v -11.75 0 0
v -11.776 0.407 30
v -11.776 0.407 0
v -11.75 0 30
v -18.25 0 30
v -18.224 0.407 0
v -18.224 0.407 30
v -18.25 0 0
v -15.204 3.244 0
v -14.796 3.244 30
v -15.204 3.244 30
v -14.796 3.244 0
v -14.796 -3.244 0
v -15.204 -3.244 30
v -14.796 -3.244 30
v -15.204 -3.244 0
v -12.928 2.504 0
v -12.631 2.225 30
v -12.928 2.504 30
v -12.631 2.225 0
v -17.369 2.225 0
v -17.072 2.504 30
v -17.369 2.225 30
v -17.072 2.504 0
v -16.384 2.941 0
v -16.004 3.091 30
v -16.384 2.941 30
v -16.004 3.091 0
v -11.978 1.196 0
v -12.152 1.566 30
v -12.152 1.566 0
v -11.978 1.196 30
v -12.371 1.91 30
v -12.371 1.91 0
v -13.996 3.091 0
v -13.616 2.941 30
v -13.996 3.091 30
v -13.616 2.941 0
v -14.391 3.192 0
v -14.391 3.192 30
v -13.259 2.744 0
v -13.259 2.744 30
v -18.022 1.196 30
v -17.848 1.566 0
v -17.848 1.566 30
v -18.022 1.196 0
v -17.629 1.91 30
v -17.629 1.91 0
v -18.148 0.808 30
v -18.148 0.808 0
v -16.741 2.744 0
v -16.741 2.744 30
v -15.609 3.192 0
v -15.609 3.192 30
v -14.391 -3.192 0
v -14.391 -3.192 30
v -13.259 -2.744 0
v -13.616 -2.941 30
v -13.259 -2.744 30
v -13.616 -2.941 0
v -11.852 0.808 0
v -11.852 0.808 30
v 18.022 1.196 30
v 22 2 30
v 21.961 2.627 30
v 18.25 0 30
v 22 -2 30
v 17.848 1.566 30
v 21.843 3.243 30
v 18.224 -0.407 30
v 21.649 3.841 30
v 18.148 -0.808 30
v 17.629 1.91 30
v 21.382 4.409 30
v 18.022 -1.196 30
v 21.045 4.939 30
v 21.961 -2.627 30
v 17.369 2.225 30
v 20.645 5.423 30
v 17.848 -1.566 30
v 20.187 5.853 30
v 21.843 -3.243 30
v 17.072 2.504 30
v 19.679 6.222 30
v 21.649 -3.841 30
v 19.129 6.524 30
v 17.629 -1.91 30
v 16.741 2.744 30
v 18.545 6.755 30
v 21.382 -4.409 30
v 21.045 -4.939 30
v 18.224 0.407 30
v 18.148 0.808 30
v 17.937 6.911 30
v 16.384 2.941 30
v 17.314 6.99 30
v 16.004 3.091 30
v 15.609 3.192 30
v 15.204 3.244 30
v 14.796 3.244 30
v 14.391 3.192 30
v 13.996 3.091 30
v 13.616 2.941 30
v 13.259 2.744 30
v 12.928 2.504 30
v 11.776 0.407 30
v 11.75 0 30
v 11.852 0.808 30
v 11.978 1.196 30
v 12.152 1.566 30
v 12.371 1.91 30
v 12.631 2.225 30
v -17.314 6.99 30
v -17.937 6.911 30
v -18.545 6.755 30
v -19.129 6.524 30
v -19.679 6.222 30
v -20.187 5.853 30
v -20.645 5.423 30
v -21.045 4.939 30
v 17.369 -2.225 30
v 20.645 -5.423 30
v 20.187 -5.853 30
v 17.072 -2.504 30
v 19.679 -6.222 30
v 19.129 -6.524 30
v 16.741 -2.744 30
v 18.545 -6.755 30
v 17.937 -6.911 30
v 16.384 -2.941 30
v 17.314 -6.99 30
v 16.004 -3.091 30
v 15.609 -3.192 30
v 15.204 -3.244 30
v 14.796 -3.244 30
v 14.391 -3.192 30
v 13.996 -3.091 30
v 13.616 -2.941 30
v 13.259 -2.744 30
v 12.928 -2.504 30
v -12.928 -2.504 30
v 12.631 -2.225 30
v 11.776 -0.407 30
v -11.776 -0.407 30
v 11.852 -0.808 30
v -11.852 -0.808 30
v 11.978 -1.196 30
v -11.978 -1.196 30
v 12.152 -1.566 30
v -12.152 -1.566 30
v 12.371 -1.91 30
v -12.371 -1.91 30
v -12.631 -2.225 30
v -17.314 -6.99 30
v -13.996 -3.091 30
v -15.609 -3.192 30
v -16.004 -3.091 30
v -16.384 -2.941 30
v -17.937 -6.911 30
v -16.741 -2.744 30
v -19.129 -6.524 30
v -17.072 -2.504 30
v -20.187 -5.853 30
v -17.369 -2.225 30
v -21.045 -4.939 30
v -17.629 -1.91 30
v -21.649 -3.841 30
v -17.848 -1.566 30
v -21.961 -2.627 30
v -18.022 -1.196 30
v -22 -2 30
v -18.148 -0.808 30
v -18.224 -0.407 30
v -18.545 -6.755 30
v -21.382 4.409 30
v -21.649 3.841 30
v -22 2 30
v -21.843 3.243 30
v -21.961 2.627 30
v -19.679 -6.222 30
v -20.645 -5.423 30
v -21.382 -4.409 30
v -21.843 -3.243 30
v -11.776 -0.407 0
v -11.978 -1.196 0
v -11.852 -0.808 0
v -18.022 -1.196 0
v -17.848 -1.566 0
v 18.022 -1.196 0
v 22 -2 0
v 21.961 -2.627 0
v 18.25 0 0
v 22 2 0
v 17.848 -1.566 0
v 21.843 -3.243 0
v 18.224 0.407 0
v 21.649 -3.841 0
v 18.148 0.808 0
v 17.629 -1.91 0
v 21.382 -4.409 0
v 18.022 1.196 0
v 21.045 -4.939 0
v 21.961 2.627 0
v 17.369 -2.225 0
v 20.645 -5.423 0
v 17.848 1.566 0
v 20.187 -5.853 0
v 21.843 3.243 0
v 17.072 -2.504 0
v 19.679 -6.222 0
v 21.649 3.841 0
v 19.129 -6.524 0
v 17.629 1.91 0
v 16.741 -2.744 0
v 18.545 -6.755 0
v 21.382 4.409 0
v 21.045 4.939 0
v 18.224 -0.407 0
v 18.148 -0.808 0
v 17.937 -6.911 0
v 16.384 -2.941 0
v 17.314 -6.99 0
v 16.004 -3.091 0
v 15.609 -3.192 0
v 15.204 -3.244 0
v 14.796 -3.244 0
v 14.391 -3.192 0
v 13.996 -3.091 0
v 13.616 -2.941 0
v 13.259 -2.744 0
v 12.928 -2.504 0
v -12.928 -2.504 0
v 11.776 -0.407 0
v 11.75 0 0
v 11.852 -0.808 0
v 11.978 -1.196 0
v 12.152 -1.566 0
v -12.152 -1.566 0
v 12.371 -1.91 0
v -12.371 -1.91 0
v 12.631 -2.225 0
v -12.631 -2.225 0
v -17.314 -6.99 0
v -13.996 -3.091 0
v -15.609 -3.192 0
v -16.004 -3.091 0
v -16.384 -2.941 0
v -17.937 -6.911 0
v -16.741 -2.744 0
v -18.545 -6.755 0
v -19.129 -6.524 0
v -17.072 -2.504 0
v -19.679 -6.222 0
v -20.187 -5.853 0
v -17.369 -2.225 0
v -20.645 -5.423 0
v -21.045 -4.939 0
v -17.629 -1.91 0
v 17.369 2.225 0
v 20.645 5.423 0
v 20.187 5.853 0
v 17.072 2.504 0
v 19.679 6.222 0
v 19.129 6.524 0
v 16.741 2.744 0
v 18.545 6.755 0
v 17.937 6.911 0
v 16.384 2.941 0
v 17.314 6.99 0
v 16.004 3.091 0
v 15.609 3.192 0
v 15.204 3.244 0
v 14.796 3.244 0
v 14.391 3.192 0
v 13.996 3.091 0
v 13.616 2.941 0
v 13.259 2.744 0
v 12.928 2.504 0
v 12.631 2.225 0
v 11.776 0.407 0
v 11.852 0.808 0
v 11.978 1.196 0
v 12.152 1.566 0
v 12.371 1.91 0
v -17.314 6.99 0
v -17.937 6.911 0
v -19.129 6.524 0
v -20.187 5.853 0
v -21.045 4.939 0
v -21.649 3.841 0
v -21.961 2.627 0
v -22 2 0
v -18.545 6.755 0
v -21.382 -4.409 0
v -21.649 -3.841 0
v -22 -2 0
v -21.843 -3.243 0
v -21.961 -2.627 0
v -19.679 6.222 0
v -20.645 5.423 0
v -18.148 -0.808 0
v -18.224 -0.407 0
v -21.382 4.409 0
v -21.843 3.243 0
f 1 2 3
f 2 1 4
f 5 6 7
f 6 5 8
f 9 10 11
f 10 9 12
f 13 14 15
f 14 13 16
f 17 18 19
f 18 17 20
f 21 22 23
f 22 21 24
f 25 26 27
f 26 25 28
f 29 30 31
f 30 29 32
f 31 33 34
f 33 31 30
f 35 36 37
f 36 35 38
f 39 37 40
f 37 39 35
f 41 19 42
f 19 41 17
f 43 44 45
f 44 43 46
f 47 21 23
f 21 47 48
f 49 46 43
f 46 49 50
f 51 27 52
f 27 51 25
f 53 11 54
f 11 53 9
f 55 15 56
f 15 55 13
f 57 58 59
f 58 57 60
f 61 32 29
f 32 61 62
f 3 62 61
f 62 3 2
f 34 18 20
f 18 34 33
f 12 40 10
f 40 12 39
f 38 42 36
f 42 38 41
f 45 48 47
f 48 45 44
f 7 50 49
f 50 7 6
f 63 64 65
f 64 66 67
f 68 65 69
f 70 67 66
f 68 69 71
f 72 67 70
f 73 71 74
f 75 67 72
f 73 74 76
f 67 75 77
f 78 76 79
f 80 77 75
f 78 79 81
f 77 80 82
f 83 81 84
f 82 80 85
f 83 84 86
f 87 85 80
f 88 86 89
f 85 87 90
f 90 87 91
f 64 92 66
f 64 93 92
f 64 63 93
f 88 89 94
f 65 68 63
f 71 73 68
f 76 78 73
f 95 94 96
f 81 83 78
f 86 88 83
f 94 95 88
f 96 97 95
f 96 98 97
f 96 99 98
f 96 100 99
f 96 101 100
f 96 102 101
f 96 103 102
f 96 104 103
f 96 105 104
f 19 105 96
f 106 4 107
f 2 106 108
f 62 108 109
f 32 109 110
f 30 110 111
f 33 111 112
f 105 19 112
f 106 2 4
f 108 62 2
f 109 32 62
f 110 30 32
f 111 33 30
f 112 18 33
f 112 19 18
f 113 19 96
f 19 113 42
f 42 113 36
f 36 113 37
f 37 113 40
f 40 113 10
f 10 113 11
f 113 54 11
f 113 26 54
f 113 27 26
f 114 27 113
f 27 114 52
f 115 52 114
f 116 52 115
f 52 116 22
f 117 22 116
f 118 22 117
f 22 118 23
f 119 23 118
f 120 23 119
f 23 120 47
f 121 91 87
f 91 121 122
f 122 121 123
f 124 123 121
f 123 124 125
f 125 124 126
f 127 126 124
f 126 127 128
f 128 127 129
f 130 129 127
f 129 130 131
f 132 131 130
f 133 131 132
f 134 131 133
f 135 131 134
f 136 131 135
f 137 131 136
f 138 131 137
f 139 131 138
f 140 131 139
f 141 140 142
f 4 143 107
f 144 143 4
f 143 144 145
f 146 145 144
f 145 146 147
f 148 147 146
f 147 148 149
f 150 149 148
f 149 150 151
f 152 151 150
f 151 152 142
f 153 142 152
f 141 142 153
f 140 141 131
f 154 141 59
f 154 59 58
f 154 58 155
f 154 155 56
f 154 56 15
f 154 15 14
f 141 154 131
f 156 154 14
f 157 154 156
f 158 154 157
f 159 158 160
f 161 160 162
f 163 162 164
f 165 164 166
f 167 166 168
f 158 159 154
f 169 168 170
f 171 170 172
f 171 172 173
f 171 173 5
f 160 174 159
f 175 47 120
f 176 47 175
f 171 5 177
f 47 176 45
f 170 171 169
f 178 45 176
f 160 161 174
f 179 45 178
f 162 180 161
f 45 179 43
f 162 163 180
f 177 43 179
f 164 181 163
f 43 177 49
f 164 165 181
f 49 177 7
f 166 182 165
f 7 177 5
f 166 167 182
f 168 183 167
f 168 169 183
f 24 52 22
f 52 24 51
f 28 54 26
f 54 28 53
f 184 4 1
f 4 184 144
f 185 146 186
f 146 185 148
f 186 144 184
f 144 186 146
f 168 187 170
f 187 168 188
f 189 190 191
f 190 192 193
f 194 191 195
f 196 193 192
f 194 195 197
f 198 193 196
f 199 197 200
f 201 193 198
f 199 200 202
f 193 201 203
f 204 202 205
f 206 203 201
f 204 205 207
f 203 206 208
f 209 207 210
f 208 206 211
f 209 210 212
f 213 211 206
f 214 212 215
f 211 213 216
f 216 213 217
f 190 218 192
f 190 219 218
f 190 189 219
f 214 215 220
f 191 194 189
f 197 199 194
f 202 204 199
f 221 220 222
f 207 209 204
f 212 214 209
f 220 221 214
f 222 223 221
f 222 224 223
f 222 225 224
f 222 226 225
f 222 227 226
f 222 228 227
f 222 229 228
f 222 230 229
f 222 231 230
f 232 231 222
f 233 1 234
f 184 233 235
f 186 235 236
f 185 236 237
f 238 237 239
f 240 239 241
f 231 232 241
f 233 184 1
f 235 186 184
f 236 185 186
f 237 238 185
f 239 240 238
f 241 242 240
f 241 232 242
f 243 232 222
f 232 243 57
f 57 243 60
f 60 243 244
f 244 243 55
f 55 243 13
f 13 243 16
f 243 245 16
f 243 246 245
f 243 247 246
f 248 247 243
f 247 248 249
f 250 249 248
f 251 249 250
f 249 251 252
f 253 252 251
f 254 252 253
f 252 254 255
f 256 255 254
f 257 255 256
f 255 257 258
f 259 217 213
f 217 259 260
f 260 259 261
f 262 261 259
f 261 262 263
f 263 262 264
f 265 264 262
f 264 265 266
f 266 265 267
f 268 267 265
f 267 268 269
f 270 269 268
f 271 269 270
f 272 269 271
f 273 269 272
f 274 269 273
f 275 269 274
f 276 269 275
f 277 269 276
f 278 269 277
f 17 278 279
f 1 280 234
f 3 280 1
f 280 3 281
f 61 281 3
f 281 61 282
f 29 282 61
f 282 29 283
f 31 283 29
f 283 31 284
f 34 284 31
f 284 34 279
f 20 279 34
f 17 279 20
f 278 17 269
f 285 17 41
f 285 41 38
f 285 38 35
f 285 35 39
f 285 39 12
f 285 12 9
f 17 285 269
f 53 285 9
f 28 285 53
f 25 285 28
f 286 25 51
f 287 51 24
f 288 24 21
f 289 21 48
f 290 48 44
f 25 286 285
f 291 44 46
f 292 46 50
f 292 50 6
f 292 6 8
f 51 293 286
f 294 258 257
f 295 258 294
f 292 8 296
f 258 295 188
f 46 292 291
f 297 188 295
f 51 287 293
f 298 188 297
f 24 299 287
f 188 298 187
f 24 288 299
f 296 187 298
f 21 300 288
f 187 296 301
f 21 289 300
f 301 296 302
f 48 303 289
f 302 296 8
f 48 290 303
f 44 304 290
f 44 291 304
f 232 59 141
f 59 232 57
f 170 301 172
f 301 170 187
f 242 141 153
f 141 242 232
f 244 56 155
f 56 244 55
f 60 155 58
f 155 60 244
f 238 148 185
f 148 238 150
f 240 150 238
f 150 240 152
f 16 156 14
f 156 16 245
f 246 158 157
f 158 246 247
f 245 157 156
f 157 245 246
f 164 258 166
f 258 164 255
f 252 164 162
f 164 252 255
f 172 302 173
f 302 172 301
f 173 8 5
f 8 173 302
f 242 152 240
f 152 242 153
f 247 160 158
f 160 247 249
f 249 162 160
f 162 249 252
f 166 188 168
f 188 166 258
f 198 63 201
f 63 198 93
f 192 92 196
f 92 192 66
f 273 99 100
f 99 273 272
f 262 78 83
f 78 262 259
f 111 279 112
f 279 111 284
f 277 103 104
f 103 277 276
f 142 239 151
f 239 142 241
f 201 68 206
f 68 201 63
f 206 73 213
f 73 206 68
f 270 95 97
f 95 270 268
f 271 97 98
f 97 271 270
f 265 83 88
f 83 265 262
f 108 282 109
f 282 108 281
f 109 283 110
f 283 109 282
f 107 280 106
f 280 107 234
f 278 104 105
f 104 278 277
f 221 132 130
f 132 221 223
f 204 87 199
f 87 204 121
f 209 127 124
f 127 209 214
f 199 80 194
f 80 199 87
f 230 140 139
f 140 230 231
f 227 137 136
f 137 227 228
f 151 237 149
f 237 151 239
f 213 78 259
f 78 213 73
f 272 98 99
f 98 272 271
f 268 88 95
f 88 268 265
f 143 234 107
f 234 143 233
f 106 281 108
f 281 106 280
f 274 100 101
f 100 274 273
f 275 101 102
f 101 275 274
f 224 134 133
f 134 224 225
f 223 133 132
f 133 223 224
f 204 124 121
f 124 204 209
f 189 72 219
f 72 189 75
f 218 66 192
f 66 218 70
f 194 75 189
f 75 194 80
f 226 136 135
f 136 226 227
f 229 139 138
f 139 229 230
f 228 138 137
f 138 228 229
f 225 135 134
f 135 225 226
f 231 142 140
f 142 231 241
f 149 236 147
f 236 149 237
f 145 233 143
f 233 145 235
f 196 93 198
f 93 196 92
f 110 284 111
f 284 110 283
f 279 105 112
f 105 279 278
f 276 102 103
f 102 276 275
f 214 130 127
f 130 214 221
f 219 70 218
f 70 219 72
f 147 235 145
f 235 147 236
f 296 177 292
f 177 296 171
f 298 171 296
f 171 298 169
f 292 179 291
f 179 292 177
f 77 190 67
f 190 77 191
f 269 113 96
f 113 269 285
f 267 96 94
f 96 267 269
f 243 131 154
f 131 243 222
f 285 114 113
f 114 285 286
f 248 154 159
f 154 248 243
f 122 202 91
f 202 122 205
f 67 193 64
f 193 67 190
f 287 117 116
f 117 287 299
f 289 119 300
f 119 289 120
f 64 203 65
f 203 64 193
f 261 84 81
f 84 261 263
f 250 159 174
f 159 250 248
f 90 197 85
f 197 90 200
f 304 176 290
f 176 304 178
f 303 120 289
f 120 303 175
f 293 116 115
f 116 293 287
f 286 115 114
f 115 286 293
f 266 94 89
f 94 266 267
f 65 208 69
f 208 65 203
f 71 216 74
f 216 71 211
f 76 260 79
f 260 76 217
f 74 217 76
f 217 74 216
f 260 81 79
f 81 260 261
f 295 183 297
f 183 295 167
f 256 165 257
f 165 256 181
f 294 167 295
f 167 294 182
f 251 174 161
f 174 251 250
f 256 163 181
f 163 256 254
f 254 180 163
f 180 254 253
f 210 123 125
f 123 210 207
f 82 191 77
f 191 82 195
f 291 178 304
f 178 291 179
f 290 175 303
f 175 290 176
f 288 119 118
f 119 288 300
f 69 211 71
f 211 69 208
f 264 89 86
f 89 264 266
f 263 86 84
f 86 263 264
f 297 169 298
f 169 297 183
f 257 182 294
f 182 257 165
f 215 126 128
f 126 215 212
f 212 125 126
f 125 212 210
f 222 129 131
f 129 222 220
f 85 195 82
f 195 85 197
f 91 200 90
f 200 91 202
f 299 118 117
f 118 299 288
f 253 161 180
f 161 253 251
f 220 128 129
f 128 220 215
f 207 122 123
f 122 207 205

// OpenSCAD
$fn = 50;


difference() {
	union() {
		hull() {
			translate(v = [-17.0000000000, 2.0000000000, 0]) {
				cylinder(h = 30, r = 5);
			}
			translate(v = [17.0000000000, 2.0000000000, 0]) {
				cylinder(h = 30, r = 5);
			}
			translate(v = [-17.0000000000, -2.0000000000, 0]) {
				cylinder(h = 30, r = 5);
			}
			translate(v = [17.0000000000, -2.0000000000, 0]) {
				cylinder(h = 30, r = 5);
			}
		}
	}
	union() {
		translate(v = [-15.0000000000, 0.0000000000, 0]) {
			cylinder(h = 30, r = 3.2500000000);
		}
		translate(v = [15.0000000000, 0.0000000000, 0]) {
			cylinder(h = 30, r = 3.2500000000);
		}
		translate(v = [-15.0000000000, 0.0000000000, 0]) {
			cylinder(h = 30, r = 1.8000000000);
		}
		translate(v = [15.0000000000, 0.0000000000, 0]) {
			cylinder(h = 30, r = 1.8000000000);
		}
		translate(v = [-15.0000000000, 0.0000000000, 0]) {
			cylinder(h = 30, r = 1.8000000000);
		}
		translate(v = [15.0000000000, 0.0000000000, 0]) {
			cylinder(h = 30, r = 1.8000000000);
		}
		translate(v = [-15.0000000000, 0.0000000000, 0]) {
			cylinder(h = 30, r = 1.8000000000);
		}
		translate(v = [15.0000000000, 0.0000000000, 0]) {
			cylinder(h = 30, r = 1.8000000000);
		}
	}
}
